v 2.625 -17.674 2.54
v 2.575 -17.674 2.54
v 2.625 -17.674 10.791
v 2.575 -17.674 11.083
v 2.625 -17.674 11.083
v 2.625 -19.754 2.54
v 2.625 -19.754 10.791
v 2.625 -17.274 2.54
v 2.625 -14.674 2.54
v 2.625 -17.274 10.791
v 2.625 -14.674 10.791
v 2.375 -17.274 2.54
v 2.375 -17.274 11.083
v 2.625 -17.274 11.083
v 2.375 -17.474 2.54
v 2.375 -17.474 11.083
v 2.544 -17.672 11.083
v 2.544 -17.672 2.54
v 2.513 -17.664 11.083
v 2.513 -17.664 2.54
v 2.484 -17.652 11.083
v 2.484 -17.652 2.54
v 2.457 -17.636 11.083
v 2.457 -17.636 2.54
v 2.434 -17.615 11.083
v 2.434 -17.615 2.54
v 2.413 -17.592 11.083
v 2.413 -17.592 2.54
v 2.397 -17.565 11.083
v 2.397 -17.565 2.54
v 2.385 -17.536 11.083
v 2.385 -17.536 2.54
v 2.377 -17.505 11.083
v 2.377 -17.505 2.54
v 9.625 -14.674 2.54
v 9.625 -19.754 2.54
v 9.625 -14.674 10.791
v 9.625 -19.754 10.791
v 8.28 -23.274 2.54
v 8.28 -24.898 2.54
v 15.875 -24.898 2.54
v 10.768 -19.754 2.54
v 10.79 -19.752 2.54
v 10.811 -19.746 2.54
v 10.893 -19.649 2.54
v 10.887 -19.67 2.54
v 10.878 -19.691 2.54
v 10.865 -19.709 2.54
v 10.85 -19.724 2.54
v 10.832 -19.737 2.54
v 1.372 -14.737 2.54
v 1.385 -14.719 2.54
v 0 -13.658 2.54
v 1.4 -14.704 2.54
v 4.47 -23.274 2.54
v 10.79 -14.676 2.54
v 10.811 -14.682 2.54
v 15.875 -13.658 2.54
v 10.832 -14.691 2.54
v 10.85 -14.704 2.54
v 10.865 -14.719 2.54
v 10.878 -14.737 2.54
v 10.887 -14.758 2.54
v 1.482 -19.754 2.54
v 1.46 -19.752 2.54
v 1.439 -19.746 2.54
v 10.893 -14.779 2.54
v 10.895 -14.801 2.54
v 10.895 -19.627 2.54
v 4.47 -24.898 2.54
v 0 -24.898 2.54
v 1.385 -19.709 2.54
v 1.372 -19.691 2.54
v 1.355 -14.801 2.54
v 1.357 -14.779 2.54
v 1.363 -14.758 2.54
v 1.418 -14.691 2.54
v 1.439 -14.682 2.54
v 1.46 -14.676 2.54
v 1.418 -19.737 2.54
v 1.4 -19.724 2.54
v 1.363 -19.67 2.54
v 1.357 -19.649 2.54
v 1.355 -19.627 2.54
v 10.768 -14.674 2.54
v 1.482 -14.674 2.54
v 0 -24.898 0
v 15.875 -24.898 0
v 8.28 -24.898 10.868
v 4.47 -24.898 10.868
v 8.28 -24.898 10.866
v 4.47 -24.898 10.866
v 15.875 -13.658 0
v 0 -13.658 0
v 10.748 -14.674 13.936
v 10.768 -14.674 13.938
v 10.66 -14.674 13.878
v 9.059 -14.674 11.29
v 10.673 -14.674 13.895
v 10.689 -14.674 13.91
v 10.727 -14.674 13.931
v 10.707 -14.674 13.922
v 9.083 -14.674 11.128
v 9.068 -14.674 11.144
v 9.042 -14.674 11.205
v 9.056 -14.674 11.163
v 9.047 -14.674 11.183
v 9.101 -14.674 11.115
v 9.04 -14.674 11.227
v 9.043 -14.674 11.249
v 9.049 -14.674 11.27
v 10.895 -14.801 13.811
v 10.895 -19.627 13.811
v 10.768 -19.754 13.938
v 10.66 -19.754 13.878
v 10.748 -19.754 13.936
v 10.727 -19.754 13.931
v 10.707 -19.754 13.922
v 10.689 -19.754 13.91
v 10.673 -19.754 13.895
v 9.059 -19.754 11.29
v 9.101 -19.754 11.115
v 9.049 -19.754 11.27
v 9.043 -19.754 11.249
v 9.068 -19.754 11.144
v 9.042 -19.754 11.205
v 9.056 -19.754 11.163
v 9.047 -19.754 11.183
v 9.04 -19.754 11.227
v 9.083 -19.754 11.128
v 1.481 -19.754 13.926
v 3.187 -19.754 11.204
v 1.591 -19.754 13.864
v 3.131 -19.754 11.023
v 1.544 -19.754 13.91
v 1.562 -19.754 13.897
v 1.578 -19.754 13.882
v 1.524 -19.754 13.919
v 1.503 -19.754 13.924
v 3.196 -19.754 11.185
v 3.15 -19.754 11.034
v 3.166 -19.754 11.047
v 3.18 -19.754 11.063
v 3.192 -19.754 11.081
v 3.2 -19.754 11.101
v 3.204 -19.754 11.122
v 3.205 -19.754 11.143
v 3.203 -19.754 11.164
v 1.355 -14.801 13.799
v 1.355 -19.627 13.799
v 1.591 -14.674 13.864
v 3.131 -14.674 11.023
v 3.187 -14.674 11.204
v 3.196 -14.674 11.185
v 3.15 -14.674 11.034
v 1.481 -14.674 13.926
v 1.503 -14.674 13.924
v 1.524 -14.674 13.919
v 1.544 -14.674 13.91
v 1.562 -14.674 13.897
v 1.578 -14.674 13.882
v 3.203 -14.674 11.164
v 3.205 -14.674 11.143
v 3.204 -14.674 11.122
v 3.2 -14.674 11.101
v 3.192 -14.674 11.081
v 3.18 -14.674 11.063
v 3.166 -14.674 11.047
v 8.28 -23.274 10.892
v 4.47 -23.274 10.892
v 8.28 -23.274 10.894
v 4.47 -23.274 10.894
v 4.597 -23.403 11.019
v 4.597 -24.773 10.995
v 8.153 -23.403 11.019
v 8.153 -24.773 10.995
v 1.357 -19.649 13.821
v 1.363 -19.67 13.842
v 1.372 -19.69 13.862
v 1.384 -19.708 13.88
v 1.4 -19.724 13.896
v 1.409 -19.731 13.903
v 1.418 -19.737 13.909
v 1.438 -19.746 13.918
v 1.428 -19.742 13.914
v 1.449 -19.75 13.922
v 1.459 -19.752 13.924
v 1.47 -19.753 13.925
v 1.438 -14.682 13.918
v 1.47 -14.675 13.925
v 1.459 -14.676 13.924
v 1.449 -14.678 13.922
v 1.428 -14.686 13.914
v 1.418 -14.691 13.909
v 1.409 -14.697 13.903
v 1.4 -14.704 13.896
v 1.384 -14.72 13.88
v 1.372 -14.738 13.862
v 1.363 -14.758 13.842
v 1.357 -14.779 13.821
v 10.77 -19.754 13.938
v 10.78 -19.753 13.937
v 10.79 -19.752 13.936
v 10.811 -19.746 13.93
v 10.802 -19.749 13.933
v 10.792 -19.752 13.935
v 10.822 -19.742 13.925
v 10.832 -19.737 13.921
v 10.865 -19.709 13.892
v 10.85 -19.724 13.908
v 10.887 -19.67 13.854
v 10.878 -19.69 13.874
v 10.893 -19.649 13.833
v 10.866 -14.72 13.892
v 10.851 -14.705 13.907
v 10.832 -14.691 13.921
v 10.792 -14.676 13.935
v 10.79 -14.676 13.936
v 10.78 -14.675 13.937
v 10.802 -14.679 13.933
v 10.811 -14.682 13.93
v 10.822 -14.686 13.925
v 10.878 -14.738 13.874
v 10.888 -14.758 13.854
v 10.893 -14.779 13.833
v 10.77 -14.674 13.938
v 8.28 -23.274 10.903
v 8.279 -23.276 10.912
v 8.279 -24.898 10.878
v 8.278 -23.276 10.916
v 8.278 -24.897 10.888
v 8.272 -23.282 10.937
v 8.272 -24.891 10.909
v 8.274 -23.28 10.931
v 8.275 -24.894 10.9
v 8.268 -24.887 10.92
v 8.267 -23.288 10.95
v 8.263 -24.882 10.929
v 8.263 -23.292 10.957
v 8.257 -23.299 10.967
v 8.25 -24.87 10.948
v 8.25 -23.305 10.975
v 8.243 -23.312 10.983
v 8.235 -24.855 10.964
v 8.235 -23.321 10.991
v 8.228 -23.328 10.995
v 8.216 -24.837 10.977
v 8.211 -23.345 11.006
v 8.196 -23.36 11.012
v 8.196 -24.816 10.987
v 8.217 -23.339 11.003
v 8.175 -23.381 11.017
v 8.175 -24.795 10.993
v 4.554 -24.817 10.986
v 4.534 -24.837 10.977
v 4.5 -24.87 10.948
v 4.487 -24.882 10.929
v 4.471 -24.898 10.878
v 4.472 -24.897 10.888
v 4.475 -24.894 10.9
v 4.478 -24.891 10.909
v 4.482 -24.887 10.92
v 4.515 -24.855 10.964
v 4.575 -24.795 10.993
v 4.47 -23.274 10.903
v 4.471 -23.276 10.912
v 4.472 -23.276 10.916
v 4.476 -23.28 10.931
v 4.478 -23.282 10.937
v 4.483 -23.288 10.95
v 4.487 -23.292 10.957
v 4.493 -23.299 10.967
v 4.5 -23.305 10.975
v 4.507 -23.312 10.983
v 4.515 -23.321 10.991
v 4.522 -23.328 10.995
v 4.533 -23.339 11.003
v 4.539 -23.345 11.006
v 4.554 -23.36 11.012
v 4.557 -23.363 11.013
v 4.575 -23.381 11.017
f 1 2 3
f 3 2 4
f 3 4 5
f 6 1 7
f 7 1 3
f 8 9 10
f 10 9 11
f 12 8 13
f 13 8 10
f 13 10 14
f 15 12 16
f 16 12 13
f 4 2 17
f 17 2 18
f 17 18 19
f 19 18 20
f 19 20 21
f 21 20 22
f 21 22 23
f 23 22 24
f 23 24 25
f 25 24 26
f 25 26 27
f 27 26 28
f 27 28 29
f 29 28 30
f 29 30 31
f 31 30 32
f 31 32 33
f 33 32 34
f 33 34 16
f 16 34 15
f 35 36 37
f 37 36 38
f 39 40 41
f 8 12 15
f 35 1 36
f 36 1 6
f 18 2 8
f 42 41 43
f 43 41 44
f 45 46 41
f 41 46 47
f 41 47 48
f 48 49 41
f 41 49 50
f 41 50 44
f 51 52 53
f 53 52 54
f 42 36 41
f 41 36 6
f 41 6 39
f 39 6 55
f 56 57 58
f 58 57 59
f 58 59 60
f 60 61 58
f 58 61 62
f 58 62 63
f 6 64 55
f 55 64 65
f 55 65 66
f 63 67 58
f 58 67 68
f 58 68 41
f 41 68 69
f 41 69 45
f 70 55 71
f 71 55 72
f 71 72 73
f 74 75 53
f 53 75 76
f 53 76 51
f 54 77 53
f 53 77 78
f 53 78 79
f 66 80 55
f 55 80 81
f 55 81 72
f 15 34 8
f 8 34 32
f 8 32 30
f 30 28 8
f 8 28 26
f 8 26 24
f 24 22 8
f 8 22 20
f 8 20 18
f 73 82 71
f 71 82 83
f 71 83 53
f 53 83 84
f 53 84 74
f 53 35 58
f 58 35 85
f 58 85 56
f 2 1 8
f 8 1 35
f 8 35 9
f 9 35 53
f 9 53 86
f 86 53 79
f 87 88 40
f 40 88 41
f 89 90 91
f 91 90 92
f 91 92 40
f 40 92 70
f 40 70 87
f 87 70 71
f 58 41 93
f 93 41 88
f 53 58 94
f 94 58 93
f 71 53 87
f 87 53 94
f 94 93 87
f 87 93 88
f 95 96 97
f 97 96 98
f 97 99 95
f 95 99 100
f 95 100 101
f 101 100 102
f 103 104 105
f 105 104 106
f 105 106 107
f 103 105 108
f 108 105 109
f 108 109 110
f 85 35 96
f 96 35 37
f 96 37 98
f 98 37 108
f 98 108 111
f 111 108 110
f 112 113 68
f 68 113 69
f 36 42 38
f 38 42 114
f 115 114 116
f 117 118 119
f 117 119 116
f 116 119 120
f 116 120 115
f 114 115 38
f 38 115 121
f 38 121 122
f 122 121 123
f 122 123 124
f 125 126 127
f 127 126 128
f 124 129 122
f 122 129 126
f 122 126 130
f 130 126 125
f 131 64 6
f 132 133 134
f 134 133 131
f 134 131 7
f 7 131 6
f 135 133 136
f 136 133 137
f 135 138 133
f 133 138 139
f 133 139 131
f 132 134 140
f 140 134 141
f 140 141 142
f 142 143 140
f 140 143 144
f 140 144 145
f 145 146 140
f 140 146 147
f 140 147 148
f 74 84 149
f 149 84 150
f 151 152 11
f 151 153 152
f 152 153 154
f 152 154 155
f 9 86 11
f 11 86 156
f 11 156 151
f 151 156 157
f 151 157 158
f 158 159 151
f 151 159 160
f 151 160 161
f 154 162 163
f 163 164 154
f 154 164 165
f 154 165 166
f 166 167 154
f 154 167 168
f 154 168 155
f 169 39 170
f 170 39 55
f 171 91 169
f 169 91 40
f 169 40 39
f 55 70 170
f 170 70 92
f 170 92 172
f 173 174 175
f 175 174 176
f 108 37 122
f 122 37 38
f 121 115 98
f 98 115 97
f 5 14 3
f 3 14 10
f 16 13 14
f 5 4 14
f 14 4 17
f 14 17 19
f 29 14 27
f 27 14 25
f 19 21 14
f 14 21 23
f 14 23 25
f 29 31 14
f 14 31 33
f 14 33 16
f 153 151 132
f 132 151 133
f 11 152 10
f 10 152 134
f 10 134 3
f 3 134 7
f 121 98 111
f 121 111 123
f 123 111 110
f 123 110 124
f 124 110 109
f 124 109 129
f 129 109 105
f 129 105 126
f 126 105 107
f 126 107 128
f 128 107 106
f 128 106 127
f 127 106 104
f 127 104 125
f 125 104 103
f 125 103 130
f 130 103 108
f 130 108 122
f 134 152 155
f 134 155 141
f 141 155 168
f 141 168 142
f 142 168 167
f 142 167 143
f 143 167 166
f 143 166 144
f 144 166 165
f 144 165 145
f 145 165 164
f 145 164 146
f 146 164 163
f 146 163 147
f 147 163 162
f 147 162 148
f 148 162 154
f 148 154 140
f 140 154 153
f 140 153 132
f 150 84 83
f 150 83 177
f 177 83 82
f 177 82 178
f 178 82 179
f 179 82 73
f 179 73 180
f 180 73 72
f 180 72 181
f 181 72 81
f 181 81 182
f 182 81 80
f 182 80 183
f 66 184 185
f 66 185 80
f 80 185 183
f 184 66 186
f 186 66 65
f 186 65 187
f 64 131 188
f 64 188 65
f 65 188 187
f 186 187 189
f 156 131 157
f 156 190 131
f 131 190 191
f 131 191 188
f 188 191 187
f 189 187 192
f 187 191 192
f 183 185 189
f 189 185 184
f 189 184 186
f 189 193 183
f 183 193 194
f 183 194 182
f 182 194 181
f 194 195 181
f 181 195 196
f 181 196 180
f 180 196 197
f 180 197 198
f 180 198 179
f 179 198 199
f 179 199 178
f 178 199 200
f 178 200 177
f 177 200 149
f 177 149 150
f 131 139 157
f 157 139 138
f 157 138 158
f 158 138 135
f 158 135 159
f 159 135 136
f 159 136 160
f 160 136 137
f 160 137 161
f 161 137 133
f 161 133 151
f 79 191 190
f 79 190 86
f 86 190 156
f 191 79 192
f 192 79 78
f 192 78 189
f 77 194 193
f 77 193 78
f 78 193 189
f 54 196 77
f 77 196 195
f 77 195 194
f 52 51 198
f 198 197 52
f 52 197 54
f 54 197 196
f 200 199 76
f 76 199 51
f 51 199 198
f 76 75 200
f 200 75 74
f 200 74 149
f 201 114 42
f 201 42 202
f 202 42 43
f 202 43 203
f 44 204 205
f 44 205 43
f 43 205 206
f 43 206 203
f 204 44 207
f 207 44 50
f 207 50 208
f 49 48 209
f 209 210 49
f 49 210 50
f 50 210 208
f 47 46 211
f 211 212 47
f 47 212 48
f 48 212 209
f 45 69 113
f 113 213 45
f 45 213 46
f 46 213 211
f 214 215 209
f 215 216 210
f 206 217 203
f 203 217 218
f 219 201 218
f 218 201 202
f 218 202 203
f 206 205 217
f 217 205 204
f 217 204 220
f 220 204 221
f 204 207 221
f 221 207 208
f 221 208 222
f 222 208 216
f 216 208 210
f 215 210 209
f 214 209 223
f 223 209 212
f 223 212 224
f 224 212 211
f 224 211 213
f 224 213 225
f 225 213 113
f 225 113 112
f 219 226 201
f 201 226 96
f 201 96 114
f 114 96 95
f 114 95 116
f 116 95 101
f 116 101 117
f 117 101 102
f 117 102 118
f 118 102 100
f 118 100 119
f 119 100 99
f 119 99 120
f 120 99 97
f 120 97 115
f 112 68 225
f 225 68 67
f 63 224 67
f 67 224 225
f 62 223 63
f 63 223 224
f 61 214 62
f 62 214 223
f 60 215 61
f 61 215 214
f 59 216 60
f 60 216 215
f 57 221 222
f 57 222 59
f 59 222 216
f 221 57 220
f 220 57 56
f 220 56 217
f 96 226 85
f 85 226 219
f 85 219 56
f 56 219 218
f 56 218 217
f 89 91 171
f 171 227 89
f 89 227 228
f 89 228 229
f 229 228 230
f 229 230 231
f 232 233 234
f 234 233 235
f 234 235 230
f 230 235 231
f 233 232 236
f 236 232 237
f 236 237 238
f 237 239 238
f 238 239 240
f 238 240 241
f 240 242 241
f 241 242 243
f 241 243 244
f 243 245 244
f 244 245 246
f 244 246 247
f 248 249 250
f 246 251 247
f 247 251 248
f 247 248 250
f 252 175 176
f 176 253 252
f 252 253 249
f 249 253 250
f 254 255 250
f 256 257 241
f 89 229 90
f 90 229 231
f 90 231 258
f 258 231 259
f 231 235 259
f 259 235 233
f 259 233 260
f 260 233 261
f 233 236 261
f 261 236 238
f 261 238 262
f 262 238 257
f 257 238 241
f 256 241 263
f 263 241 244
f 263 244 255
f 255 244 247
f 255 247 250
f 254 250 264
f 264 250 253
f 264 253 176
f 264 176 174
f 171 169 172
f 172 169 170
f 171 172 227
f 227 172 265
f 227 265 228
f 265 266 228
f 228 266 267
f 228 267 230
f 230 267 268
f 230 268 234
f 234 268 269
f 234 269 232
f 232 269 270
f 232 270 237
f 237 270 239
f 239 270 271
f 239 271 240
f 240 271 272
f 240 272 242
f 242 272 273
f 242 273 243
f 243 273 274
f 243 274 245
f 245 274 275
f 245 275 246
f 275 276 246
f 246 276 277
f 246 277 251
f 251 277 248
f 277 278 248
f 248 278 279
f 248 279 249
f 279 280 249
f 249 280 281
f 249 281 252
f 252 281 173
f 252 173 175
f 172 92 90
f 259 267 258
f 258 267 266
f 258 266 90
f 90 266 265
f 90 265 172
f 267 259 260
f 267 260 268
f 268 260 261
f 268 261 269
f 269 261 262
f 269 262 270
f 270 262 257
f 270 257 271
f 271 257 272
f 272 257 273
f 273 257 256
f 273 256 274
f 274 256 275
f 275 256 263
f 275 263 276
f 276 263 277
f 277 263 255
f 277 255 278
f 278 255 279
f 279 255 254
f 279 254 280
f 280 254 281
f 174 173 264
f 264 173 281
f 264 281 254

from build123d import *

# Parameters (mm, degrees)
SKETCH1_W           = 15.875
SKETCH1_H           = 11.239799379
BOSS_EXTRUDE1_DEPTH = 2.54
BOSS_EXTRUDE2_REACH = 31.638
SKETCH2_W           = 1.27
SKETCH2_H           = 5.08
SKETCH2_W_2         = 3.81
SKETCH2_H_2         = 1.624267758
BOSS_EXTRUDE3_REACH = 23.94
FILLET1_R           = 0.127


with BuildPart() as part:
    # Sketch1 → Boss-Extrude1 (new body)
    with BuildSketch(Plane.XY):
        with Locations((7.9375, -19.278367991)):
            Rectangle(SKETCH1_W, SKETCH1_H)
    extrude(amount=BOSS_EXTRUDE1_DEPTH)

    # Boss-Extrude2: up to this plane
    boss_extrude2_end = Plane(origin=(1.6499976, -12.666472126, 11.206213123), z_dir=(-1.2251589112771177e-15, 0.017452406437284806, -0.9998476951563913))
    # Sketch2 → Boss-Extrude2 (add, up to the surface)
    with BuildSketch(Plane.XY.offset(2.54), mode=Mode.PRIVATE) as boss_extrude2_sk1:
        with BuildLine():
            Line((2.625, -17.673999922), (2.625, -19.753999922))
            Line((2.625, -19.753999922), (1.355, -19.753999922))
            Line((1.355, -19.753999922), (1.355, -14.673999922))
            Line((1.355, -14.673999922), (2.625, -14.673999922))
            Line((2.625, -14.673999922), (2.625, -17.273999922))
            Line((2.625, -17.273999922), (2.375, -17.273999922))
            Line((2.375, -17.273999922), (2.375, -17.473999922))
            ThreePointArc((2.375, -17.473999922), (2.433578644, -17.615421279), (2.575, -17.673999922))
            Line((2.575, -17.673999922), (2.625, -17.673999922))
        make_face()
    boss_extrude2_tool1 = split(extrude(boss_extrude2_sk1.sketch, amount=BOSS_EXTRUDE2_REACH, mode=Mode.PRIVATE), bisect_by=boss_extrude2_end, keep=Keep.BOTH, mode=Mode.PRIVATE)
    add(boss_extrude2_tool1.solids().sort_by_distance((1.982561, -17.210473, 2.54))[0])
    # Sketch2 → Boss-Extrude2 (add, up to the surface)
    with BuildSketch(Plane.XY.offset(2.54), mode=Mode.PRIVATE) as boss_extrude2_sk2:
        with Locations((10.26, -17.213999922)):
            Rectangle(SKETCH2_W, SKETCH2_H)
    boss_extrude2_tool2 = split(extrude(boss_extrude2_sk2.sketch, amount=BOSS_EXTRUDE2_REACH, mode=Mode.PRIVATE), bisect_by=boss_extrude2_end, keep=Keep.BOTH, mode=Mode.PRIVATE)
    add(boss_extrude2_tool2.solids().sort_by_distance((10.26, -17.214, 2.54))[0])
    # Sketch2 → Boss-Extrude2 (add, up to the surface)
    with BuildSketch(Plane.XY.offset(2.54), mode=Mode.PRIVATE) as boss_extrude2_sk3:
        with Locations((6.375, -24.086133801)):
            Rectangle(SKETCH2_W_2, SKETCH2_H_2)
    boss_extrude2_tool3 = split(extrude(boss_extrude2_sk3.sketch, amount=BOSS_EXTRUDE2_REACH, mode=Mode.PRIVATE), bisect_by=boss_extrude2_end, keep=Keep.BOTH, mode=Mode.PRIVATE)
    add(boss_extrude2_tool3.solids().sort_by_distance((6.375, -24.086134, 2.54))[0])

    # Boss-Extrude3: up to this face of the body (flat: up to its plane)
    boss_extrude3_end = Plane(part.part.faces().sort_by_distance((1.99, -19.753999922, 6.811249933))[0])
    # Sketch4 → Boss-Extrude3 (add, up to the picked face)
    with BuildSketch(Plane.XZ.offset(14.673999922), mode=Mode.PRIVATE) as boss_extrude3_sk1:
        Polygon((10.895, 11.082499866), (9.625, 11.082499866), (9.625, 10.790559516), (8.992585474, 11.181716662), (10.895, 14.257499866), align=None)
    boss_extrude3_tool1 = split(extrude(boss_extrude3_sk1.sketch, amount=BOSS_EXTRUDE3_REACH, mode=Mode.PRIVATE), bisect_by=boss_extrude3_end, keep=Keep.BOTH, mode=Mode.PRIVATE)
    # Sketch4 → Boss-Extrude3 (add, up to the picked face)
    with BuildSketch(Plane.XZ.offset(14.673999922), mode=Mode.PRIVATE) as boss_extrude3_sk2:
        Polygon((1.355, 11.082499866), (2.625, 11.082499866), (2.625, 10.790559516), (3.26, 11.082499866), (1.355, 14.257499866), align=None)
    boss_extrude3_tool2 = split(extrude(boss_extrude3_sk2.sketch, amount=BOSS_EXTRUDE3_REACH, mode=Mode.PRIVATE), bisect_by=boss_extrude3_end, keep=Keep.BOTH, mode=Mode.PRIVATE)
    add(boss_extrude3_tool1.solids().sort_by(Axis((10.227849, -14.674, 12.119311), (0, -1, 0)))[0])
    add(boss_extrude3_tool2.solids().sort_by(Axis((2.015179, -14.674, 12.106466), (0, -1, 0)))[0])

    # Fillet1
    fillet1_edges = [part.edges().sort_by_distance(p)[0] for p in [
        (10.895, -14.673999922, 8.398749933),
        (10.895, -19.753999922, 8.398749933),
        (1.355, -19.753999922, 8.398749933),
        (1.355, -14.673999922, 8.398749933),
        (6.375, -23.273999922, 11.021058037),
        (8.28, -24.086133801, 11.006882187),
        (6.375, -24.89826768, 10.992706338),
        (4.47, -24.086133801, 11.006882187),
        (8.992585474, -17.213999922, 11.181716662),
        (10.895, -17.213999922, 14.257499866),
        (1.355, -17.213999922, 14.257499866),
        (3.26, -17.213999922, 11.082499866),
    ]]
    fillet(fillet1_edges, radius=FILLET1_R)


solid = part.part
